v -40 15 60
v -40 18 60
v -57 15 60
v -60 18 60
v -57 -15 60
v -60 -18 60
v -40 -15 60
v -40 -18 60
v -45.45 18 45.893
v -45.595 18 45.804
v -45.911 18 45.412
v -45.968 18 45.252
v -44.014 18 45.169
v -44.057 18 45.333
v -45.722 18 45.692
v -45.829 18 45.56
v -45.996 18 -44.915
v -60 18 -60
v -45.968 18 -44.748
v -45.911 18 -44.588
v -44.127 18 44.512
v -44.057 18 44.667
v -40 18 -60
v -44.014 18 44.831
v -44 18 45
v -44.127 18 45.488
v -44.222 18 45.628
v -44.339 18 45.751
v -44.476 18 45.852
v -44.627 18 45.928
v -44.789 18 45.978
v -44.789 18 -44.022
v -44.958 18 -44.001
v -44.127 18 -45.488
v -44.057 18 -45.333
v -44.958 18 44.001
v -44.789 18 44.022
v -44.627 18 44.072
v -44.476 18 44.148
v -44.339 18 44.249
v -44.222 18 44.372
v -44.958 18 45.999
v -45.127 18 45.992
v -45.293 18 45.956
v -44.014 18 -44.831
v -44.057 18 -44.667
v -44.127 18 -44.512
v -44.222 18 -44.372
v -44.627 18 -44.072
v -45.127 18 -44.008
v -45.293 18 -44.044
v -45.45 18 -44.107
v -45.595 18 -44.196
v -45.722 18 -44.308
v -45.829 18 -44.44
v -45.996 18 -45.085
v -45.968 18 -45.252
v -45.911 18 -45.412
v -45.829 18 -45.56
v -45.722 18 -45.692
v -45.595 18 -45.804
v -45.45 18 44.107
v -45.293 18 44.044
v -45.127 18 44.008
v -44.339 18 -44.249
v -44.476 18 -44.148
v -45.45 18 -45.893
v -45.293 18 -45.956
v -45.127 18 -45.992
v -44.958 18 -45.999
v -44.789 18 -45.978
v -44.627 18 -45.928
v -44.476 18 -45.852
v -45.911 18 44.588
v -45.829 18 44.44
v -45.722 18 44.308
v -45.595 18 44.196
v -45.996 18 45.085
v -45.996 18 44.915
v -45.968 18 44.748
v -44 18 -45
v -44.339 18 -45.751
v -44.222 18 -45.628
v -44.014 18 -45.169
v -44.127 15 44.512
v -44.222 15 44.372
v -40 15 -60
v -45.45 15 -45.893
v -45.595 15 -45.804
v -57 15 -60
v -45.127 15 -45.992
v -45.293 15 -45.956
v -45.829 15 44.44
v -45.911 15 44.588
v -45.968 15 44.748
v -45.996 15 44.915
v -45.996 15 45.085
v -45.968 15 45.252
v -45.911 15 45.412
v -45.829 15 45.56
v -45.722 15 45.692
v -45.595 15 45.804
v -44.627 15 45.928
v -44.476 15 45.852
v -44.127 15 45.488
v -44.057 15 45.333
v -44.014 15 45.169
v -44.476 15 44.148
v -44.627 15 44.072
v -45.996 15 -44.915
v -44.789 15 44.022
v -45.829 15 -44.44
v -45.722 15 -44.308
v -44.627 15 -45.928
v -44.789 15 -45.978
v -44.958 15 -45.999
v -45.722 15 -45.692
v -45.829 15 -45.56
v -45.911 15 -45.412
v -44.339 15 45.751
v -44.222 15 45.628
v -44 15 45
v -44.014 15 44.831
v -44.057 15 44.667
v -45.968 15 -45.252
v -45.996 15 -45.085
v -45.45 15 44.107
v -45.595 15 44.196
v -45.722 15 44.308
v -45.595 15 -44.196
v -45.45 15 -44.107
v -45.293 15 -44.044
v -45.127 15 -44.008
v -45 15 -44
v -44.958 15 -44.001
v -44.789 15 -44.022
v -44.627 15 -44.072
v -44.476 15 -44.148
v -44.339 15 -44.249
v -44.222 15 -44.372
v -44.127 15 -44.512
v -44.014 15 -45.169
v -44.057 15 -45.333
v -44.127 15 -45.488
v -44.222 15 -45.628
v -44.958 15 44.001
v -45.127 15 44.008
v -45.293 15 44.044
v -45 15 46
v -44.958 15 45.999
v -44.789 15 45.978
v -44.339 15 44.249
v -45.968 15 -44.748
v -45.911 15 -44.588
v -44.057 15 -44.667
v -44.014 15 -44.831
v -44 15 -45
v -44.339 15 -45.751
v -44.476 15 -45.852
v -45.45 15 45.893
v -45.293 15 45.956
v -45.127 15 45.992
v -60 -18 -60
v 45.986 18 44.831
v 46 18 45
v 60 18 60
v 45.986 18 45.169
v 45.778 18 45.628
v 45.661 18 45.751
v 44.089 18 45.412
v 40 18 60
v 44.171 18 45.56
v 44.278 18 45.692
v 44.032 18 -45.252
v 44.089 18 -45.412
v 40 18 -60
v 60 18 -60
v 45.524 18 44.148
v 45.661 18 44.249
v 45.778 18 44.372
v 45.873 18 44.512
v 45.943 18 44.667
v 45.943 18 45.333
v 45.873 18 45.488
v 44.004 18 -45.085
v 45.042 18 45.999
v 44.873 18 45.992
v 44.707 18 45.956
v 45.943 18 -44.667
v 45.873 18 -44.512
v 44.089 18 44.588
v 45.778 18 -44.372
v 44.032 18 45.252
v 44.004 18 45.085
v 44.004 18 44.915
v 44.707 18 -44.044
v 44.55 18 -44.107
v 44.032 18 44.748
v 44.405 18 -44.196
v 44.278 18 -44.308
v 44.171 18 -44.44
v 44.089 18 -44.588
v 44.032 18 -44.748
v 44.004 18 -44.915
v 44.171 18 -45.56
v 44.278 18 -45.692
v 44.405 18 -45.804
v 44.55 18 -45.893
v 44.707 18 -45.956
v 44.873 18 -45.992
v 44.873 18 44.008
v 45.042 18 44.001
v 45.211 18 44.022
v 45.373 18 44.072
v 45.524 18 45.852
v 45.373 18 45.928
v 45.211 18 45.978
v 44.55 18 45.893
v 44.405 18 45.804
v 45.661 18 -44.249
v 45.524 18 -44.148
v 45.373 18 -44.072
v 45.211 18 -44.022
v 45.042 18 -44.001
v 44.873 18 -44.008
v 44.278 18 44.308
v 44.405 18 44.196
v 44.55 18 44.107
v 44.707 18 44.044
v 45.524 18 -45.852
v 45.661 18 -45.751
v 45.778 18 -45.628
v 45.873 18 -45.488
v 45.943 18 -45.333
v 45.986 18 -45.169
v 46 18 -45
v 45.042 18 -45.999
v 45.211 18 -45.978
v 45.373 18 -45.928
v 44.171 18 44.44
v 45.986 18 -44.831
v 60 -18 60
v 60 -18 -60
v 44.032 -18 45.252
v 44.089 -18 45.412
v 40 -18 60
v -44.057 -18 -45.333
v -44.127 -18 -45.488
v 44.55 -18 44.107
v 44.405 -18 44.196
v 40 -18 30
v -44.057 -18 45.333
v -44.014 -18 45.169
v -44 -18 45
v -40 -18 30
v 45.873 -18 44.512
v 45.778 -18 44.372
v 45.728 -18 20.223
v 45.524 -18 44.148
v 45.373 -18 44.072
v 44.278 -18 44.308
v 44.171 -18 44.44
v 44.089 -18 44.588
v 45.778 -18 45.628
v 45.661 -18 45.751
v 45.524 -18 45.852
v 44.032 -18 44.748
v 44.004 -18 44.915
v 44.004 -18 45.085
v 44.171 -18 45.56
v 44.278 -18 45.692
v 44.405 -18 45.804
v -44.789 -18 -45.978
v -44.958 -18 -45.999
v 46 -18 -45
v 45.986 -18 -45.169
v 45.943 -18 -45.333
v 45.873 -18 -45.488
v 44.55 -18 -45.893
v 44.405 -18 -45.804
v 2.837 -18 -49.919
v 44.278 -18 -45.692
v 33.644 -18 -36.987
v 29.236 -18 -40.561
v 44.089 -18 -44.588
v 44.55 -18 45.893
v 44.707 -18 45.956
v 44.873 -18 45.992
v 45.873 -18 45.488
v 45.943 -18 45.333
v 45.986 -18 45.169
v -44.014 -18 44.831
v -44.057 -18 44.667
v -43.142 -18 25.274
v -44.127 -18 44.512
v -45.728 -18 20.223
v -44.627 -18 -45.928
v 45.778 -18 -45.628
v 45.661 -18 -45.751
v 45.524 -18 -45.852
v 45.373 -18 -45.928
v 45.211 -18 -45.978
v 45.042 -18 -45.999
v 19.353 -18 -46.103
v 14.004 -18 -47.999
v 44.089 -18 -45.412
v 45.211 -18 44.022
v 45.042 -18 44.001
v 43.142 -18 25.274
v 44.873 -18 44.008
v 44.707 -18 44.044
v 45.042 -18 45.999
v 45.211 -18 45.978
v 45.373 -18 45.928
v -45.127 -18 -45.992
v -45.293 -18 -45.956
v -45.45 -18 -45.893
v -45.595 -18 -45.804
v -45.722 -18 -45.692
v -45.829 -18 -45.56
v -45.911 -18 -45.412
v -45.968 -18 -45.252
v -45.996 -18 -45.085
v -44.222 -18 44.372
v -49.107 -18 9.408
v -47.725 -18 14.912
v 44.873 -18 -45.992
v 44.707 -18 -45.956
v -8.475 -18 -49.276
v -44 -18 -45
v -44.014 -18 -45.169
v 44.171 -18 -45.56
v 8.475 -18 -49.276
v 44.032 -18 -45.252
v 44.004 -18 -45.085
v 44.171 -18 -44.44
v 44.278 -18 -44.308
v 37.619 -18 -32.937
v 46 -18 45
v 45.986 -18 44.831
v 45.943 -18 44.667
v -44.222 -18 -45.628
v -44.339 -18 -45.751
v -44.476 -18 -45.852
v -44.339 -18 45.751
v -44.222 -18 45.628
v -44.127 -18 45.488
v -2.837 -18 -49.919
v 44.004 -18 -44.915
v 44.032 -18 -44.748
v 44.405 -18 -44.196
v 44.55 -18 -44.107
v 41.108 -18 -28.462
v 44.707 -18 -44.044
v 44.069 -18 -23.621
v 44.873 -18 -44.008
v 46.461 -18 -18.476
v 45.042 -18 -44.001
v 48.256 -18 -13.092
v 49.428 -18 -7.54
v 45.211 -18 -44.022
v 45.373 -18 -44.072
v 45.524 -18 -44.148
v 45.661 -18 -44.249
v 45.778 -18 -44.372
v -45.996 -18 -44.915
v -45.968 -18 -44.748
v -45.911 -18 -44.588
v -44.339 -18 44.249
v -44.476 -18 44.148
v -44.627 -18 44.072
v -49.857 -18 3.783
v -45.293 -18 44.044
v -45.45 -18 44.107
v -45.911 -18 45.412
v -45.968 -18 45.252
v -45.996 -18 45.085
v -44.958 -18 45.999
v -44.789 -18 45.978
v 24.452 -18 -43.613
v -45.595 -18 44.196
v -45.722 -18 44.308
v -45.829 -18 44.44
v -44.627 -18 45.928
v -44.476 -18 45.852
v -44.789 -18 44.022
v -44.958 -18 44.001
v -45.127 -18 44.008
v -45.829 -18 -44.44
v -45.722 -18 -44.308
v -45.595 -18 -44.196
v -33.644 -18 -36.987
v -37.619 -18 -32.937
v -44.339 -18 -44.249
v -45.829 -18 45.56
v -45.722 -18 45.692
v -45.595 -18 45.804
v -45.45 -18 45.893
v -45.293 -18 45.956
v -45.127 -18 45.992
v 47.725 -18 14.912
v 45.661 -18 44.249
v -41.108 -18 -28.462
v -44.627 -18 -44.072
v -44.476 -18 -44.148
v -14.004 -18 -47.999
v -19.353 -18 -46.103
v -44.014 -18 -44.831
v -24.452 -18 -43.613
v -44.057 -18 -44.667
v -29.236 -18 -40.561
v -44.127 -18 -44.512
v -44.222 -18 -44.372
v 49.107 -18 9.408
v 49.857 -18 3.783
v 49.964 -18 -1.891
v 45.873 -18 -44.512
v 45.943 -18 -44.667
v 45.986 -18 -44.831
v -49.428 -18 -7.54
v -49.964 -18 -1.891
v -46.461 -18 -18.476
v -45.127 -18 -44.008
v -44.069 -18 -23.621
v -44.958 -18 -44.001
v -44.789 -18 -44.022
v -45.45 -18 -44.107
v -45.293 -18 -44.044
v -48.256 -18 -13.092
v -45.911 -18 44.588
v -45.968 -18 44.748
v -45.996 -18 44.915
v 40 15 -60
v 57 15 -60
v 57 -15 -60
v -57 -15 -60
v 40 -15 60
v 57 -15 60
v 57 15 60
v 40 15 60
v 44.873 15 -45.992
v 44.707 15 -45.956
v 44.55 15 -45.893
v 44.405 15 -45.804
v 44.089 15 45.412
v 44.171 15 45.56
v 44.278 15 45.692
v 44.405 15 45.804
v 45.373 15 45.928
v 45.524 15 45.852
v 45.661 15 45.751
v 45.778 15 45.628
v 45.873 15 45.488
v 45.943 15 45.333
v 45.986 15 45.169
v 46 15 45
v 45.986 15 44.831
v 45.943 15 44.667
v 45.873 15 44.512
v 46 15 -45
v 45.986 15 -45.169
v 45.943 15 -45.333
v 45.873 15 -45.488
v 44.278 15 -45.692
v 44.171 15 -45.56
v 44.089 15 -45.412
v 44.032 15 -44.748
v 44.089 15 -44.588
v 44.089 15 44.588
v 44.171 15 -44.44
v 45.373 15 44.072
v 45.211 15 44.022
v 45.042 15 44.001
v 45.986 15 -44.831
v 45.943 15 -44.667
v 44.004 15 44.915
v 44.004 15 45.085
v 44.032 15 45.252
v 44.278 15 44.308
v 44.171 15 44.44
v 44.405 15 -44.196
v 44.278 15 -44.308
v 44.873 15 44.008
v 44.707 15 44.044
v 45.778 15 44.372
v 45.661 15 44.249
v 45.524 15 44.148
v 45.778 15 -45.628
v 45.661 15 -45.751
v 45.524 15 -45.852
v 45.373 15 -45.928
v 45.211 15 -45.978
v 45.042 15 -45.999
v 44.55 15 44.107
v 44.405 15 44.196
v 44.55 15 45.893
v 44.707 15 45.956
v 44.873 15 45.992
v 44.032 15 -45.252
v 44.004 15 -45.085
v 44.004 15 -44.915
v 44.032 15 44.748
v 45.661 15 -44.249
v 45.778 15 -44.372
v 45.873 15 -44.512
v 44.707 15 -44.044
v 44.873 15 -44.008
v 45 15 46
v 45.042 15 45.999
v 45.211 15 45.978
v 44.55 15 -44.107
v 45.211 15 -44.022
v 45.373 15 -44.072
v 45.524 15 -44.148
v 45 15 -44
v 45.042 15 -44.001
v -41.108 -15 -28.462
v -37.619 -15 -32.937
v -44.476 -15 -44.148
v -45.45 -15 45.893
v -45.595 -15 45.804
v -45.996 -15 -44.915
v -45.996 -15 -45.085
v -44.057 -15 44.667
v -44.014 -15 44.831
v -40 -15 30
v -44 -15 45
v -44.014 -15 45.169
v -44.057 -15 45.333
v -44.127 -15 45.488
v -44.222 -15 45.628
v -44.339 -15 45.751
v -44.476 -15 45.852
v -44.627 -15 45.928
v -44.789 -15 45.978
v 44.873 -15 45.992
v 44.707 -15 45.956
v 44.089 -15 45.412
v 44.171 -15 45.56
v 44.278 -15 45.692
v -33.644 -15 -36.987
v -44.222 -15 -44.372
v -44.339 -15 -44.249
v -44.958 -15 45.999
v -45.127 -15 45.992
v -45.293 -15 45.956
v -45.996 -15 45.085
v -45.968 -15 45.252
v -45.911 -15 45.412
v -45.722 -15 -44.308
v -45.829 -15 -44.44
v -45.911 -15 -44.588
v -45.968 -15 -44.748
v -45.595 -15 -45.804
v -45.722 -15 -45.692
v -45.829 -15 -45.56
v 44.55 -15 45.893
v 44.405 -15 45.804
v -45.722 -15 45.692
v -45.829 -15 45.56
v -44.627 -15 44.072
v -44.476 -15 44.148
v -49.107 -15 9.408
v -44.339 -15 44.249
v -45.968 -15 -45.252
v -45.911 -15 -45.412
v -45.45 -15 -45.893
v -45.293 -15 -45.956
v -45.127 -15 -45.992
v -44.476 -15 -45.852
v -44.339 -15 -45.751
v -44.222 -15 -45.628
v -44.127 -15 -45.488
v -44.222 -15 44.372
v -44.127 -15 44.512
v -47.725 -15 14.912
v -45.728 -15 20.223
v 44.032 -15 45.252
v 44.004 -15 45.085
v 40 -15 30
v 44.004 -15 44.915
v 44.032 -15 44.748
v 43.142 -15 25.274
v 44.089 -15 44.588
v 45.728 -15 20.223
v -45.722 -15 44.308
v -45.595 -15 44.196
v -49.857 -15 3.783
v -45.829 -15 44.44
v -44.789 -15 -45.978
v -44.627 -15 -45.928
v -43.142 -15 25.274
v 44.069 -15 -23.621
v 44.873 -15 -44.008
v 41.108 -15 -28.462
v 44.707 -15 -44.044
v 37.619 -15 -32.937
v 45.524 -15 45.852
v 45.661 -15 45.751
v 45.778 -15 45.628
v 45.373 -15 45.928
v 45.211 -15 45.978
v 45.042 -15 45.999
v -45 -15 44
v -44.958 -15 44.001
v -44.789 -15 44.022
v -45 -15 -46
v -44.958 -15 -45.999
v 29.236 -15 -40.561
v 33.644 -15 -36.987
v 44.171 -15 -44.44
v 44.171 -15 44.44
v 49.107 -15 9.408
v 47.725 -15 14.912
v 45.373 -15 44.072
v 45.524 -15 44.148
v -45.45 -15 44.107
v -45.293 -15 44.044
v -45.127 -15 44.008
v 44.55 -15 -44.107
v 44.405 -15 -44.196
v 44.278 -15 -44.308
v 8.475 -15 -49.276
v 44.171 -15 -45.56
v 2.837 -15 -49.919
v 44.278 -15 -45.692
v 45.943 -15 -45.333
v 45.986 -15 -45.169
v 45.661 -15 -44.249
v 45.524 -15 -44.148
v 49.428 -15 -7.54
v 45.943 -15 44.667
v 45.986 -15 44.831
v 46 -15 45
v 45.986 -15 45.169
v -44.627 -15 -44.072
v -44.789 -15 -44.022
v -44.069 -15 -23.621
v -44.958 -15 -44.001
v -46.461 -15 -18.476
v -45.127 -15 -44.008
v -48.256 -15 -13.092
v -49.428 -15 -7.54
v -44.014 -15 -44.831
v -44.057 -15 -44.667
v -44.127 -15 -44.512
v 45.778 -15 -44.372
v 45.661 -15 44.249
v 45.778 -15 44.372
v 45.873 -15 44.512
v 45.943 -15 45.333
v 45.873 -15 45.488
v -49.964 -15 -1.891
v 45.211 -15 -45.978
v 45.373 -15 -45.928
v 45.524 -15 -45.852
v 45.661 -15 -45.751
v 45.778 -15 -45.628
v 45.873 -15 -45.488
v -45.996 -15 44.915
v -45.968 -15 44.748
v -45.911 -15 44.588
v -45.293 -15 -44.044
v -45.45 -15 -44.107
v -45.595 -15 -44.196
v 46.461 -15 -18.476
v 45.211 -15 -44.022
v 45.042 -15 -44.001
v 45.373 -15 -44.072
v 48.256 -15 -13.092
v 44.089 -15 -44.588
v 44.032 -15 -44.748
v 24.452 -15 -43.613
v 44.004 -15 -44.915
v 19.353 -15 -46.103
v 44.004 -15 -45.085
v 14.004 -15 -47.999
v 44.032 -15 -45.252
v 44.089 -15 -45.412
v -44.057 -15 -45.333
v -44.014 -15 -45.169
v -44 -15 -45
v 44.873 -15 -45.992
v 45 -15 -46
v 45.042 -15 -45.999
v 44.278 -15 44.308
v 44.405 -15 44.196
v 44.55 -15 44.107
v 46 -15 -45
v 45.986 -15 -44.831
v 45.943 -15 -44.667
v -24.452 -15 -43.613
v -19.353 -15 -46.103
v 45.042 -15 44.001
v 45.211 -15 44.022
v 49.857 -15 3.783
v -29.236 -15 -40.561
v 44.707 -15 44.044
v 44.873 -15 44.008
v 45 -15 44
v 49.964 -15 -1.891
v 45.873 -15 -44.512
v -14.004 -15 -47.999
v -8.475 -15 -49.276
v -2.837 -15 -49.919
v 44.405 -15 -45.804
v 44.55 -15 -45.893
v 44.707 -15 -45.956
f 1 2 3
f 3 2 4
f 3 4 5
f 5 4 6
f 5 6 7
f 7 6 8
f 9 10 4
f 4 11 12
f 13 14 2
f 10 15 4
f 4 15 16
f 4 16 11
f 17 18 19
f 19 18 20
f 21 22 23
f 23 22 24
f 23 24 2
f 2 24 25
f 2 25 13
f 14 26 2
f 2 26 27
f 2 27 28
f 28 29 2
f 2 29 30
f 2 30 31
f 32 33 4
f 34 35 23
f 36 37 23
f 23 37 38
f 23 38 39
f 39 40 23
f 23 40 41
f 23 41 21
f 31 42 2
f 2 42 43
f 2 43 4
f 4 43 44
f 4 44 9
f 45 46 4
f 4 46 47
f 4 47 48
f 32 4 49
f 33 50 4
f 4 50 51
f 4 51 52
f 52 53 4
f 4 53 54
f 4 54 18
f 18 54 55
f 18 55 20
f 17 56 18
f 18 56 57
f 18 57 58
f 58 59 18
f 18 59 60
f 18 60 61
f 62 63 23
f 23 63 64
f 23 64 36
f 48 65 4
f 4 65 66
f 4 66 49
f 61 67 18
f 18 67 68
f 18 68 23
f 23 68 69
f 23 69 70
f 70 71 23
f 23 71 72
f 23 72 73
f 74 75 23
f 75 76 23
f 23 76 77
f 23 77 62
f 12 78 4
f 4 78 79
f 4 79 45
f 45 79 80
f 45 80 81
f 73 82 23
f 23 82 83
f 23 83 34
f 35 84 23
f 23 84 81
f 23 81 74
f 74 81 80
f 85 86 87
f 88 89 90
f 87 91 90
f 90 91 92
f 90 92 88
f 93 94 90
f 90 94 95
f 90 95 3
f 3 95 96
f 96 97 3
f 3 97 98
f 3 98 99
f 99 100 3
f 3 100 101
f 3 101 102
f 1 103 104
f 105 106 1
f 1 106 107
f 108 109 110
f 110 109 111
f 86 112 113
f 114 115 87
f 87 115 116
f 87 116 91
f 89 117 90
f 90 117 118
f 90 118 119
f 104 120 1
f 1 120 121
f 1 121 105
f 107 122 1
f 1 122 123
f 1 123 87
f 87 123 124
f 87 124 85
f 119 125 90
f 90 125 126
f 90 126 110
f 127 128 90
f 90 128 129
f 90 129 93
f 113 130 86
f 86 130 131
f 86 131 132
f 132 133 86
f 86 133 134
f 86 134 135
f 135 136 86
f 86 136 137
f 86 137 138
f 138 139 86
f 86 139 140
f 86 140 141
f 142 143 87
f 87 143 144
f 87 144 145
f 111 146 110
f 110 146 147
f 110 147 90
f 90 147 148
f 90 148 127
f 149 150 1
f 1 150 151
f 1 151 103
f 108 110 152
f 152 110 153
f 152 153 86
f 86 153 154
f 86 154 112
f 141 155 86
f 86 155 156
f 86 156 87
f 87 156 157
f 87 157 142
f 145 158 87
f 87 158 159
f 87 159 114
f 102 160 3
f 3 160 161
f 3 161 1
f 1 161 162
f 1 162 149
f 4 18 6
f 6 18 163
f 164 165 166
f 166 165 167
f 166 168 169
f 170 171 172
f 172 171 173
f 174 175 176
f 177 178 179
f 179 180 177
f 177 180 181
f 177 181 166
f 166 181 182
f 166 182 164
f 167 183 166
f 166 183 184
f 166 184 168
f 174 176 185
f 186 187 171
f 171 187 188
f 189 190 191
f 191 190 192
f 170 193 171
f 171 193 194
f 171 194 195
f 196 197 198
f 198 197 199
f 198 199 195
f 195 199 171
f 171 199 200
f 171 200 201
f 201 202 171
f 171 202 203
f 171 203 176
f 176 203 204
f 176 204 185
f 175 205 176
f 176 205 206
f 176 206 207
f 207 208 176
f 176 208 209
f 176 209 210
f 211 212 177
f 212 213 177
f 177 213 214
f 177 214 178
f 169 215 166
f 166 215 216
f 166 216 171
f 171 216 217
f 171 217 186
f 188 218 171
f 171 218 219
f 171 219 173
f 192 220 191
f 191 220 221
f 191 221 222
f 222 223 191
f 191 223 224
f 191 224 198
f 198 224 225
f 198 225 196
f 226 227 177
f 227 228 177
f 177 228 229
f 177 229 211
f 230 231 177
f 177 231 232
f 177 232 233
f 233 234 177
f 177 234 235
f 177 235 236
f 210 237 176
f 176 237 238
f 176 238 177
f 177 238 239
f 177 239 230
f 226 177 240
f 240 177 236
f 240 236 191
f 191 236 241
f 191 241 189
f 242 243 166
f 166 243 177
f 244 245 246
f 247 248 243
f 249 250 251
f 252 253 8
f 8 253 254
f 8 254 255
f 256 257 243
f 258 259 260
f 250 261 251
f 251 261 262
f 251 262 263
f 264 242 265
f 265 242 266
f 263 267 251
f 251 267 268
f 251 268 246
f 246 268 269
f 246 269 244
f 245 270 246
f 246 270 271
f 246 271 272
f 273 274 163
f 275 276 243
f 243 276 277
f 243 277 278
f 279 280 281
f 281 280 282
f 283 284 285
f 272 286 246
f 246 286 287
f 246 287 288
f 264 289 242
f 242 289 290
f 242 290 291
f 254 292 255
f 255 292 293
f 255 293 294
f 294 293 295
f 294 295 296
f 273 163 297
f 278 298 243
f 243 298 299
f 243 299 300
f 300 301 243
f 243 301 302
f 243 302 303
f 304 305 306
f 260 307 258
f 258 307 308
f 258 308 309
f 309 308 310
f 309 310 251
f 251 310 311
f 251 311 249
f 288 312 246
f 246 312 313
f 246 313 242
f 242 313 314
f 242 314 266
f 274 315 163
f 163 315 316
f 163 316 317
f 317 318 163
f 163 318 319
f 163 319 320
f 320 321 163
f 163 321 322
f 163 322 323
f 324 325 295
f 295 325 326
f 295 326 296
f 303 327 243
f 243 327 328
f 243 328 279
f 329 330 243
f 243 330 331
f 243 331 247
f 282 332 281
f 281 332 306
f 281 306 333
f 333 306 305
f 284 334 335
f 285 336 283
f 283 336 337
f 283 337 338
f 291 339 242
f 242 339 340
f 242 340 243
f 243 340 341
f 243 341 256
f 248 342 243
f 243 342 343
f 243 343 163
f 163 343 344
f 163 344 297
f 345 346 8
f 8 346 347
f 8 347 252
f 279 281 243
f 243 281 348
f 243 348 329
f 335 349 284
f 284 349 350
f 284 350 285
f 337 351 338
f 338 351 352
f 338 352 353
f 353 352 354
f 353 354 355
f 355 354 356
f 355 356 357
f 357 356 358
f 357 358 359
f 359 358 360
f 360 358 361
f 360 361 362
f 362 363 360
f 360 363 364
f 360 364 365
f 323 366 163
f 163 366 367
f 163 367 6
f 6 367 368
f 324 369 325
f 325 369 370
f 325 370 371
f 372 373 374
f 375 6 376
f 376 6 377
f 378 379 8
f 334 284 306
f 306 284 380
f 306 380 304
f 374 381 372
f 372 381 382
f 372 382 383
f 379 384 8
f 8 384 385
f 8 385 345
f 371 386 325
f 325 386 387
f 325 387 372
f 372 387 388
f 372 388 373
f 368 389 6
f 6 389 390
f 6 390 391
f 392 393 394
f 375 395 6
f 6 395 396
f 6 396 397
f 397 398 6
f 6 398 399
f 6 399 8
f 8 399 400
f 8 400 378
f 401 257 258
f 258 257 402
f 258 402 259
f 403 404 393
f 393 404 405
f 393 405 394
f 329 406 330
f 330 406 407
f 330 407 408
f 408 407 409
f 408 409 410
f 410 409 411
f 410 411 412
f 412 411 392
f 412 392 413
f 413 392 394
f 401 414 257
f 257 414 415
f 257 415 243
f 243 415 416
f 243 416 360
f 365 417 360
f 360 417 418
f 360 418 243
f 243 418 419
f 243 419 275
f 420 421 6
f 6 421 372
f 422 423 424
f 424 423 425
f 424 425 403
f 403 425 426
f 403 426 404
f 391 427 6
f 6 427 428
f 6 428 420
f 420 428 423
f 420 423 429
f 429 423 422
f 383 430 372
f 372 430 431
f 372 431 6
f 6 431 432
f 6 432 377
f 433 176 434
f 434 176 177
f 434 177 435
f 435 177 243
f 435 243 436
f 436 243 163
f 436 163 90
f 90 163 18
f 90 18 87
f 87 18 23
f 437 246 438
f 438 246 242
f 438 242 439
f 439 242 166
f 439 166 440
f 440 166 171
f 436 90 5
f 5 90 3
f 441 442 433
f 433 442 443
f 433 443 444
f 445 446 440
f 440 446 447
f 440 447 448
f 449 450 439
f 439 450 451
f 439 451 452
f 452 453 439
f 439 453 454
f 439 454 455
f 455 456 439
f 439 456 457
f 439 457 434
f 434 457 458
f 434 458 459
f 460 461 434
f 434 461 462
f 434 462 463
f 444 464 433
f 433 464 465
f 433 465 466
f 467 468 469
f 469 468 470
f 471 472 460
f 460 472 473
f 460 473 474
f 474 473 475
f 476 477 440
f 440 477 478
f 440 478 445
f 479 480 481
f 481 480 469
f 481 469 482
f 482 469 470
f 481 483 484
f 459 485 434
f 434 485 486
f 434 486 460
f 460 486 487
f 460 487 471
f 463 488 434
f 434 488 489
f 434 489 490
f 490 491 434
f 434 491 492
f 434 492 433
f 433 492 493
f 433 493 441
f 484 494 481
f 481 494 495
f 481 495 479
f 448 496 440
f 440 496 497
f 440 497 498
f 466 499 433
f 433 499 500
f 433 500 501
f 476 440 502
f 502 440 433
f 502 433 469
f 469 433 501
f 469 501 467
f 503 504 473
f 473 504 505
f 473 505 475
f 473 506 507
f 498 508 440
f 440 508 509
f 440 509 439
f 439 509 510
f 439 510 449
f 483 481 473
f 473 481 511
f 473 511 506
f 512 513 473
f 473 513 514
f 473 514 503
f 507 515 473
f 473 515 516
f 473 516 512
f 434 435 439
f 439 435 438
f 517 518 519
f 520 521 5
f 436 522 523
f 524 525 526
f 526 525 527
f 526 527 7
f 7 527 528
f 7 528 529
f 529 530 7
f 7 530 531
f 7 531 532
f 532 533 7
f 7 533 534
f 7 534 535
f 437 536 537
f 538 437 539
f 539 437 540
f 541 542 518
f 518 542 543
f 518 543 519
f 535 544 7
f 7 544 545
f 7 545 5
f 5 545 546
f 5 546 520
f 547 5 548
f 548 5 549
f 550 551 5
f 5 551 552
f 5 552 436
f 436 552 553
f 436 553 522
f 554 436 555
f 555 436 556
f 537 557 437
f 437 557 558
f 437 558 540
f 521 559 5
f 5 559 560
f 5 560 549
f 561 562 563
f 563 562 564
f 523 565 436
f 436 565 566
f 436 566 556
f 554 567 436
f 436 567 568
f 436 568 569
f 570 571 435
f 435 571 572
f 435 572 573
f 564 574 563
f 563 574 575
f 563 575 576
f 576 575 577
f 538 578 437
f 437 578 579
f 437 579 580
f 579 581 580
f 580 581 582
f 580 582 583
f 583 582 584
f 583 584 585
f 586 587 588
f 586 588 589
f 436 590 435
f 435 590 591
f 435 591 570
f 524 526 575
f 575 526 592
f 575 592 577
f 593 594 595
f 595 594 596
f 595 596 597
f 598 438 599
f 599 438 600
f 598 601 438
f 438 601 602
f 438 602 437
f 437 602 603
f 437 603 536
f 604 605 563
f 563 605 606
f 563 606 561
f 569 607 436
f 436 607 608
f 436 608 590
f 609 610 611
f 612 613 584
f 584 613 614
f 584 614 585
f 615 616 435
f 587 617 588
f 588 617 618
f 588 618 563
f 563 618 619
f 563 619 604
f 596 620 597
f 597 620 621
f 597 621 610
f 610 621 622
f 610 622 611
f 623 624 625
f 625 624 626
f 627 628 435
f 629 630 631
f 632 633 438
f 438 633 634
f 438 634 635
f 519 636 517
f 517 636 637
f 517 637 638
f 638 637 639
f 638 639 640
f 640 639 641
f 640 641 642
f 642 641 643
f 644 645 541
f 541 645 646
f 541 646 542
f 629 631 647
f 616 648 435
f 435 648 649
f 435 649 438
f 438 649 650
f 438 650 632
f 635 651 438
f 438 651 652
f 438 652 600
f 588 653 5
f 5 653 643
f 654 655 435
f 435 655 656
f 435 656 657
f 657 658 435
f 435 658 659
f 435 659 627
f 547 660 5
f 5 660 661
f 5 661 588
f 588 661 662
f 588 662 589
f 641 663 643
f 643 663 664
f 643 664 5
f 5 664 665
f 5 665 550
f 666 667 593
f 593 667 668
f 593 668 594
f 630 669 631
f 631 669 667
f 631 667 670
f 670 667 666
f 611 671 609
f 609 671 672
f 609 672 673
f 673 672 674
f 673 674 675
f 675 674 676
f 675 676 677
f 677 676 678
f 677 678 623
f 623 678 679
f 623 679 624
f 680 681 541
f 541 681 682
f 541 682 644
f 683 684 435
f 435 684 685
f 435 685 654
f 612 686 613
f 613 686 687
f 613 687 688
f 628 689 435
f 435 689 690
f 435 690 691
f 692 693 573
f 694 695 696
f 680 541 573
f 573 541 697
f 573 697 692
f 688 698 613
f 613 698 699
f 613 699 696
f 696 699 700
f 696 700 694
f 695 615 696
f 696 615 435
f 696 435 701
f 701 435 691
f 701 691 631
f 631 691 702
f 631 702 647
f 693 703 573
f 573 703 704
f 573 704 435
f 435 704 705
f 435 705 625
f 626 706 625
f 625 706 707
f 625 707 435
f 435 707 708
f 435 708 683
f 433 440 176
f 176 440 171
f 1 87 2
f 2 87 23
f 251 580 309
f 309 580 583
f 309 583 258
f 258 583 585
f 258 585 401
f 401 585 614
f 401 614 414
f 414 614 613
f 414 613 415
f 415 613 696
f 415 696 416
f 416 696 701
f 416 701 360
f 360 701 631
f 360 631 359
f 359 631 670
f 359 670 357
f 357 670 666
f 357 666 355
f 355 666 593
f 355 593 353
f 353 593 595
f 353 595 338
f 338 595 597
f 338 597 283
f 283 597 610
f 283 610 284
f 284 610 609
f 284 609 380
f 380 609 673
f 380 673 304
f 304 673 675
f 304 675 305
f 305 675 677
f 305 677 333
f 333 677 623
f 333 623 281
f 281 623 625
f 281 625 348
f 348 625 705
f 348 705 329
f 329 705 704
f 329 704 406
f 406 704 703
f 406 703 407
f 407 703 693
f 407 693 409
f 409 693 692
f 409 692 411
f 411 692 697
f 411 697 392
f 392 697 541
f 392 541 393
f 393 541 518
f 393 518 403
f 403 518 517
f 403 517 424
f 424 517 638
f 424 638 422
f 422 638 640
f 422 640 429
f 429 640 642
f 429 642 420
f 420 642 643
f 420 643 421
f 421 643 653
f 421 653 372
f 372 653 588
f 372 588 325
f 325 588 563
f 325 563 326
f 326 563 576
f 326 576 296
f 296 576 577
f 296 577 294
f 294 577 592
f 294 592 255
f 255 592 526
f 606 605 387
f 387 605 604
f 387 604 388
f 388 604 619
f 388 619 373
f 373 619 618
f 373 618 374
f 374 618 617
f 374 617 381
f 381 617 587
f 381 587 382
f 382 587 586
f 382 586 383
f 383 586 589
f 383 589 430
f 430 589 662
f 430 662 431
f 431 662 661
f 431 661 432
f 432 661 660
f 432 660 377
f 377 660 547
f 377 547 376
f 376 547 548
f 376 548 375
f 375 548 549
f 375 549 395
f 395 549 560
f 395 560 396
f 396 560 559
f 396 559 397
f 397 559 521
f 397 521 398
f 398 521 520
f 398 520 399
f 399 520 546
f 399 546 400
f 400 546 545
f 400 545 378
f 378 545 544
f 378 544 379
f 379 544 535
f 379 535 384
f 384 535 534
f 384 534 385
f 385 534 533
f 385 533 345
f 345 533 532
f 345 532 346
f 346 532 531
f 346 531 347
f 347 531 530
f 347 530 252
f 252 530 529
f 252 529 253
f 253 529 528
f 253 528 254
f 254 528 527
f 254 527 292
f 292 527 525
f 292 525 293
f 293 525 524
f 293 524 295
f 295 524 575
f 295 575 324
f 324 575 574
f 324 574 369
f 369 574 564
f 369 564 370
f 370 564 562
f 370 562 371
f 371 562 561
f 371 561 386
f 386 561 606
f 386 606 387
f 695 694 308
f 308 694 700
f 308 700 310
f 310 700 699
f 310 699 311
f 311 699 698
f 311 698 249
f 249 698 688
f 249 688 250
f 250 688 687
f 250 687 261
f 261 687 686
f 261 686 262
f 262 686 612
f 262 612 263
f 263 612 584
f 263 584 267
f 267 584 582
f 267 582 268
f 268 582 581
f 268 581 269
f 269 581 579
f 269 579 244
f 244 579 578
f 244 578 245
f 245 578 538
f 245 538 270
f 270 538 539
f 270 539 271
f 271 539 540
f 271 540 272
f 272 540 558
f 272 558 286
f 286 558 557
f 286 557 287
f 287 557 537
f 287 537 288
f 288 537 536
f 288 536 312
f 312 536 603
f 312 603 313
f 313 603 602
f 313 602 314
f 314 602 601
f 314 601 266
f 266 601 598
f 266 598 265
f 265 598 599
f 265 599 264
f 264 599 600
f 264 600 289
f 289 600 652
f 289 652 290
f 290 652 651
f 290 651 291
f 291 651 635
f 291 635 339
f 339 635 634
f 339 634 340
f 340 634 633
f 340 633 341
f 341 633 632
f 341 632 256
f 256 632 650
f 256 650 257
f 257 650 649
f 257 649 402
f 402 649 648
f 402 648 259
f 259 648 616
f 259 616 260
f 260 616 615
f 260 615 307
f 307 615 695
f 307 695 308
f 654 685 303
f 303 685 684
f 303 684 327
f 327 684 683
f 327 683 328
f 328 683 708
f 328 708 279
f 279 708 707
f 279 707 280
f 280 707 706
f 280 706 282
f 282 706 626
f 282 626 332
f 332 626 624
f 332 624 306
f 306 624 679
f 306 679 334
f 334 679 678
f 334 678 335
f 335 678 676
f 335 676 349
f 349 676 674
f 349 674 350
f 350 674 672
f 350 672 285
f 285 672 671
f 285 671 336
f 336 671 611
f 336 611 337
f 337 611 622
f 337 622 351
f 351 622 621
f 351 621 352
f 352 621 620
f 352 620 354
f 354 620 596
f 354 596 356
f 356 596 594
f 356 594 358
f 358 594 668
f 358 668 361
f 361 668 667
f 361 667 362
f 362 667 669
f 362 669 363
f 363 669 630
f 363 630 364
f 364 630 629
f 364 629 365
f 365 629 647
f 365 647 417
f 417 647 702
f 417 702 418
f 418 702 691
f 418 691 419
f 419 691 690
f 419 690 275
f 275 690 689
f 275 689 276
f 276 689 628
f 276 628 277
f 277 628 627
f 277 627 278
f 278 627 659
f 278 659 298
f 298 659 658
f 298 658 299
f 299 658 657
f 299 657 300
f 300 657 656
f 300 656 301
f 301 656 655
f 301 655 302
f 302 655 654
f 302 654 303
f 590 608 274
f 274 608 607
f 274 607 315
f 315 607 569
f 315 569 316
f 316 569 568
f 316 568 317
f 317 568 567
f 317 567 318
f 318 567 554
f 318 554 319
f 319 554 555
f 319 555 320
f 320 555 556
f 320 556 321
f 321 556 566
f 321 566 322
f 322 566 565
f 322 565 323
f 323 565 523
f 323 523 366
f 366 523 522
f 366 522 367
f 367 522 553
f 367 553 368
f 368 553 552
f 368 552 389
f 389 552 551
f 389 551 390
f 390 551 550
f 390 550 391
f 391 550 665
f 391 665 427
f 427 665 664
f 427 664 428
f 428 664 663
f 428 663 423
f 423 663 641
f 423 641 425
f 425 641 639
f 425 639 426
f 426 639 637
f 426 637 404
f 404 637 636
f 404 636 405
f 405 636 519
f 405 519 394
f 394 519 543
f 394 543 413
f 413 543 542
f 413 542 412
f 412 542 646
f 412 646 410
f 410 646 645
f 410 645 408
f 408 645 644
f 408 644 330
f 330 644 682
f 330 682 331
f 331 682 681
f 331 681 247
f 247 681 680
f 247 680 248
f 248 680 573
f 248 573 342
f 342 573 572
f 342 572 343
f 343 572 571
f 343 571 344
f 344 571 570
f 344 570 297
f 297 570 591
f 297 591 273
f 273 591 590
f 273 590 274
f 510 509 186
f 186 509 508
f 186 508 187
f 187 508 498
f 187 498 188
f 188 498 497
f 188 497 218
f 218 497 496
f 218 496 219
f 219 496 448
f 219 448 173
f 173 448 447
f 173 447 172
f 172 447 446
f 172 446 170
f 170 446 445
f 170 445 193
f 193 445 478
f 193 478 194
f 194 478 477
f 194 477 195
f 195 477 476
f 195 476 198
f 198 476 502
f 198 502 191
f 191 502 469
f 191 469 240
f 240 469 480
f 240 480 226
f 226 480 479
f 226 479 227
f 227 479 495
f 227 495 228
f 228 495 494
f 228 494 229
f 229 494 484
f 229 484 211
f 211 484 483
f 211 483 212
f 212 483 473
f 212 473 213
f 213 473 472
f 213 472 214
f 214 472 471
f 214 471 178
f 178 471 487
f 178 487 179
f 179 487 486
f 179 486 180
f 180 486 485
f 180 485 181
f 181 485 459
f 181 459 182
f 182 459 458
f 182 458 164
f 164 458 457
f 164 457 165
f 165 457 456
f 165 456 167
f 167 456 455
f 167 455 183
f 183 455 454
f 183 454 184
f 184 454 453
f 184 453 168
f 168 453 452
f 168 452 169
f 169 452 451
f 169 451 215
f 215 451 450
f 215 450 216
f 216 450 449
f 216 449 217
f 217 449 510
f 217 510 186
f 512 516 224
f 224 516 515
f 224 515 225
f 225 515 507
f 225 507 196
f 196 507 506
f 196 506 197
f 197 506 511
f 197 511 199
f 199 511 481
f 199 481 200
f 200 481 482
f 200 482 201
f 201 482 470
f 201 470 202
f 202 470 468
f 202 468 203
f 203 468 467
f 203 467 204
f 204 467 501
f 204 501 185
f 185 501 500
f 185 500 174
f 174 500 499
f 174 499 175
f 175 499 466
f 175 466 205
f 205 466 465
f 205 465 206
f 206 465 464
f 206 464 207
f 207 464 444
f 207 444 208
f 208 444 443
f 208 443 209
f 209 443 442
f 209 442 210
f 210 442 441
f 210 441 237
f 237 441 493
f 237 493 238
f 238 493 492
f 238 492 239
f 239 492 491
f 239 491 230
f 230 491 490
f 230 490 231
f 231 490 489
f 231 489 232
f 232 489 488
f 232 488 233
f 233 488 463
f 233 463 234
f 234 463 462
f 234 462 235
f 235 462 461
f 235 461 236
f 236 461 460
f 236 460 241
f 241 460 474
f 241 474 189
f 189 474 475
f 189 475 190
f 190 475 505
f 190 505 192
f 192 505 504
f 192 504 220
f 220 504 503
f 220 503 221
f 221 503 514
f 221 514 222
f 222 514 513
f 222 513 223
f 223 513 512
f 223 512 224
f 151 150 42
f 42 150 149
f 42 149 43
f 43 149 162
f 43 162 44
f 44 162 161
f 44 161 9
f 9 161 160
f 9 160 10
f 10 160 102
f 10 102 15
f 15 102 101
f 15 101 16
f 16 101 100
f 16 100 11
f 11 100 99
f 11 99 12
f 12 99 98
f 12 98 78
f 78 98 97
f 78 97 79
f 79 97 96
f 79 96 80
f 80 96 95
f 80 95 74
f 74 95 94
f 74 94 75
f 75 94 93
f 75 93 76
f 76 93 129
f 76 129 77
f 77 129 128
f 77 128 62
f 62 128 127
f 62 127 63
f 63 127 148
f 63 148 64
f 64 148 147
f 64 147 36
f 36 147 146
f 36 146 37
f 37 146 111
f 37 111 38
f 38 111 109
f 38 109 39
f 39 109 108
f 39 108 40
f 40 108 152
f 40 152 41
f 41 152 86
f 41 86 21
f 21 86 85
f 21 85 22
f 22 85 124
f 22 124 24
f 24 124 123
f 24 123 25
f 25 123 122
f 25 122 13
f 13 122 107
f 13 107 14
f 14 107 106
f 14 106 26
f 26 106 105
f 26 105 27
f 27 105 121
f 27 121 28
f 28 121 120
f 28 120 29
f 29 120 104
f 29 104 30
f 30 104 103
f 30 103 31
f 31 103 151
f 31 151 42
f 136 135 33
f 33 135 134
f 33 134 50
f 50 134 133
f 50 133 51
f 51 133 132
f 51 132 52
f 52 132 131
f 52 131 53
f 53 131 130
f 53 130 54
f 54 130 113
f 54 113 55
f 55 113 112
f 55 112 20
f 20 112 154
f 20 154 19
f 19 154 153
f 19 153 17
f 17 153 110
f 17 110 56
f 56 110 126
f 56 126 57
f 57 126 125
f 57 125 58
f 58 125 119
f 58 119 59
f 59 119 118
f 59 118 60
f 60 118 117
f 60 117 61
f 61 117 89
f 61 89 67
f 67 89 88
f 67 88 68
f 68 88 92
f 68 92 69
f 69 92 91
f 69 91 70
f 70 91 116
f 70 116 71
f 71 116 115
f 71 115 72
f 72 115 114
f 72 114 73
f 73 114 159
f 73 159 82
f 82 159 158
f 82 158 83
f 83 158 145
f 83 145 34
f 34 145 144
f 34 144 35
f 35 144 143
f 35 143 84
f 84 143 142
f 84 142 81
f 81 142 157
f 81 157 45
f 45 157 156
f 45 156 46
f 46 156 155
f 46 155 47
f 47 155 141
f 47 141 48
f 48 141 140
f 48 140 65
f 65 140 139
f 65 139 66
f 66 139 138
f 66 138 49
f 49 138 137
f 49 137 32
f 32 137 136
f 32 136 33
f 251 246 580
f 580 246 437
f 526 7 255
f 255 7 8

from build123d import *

# Parameters (mm, degrees)
BOSS_EXTRUDE1_DEPTH      = 60
BOSS_EXTRUDE1_DEPTH_BACK = 60
SKETCH1_W                = 120
SKETCH1_H                = 36
SKETCH2_W                = 114
SKETCH2_H                = 30
CUT_EXTRUDE1_DEPTH       = 136.366170072
SKETCH3_W                = 80
SKETCH3_H                = 22.357813814
CUT_EXTRUDE2_DEPTH       = 136.366170072
SKETCH4_R                = 50
CUT_EXTRUDE3_DEPTH       = 92.043945433
SKETCH7_R                = 1
CUT_EXTRUDE4_DEPTH       = 93.173748974
CUT_EXTRUDE6_REACH       = 94.174
SKETCH9_W                = 80
SKETCH9_H                = 60


with BuildPart() as part:
    # Sketch1 → Boss-Extrude1 (new, two sides: drawn at the far end of the back side and taken through both)
    with BuildSketch(Plane.XY.offset(-BOSS_EXTRUDE1_DEPTH_BACK)):
        Rectangle(SKETCH1_W, SKETCH1_H)
    extrude(amount=BOSS_EXTRUDE1_DEPTH + BOSS_EXTRUDE1_DEPTH_BACK)

    # Sketch2 → Cut-Extrude1 (cut, through all)
    with BuildSketch(Plane.XY.offset(60)):
        Rectangle(SKETCH2_W, SKETCH2_H)
    extrude(amount=-CUT_EXTRUDE1_DEPTH, mode=Mode.SUBTRACT)

    # Sketch3 → Cut-Extrude2 (cut, through all)
    with BuildSketch(Plane.XY.offset(60)):
        with Locations((0, 15)):
            Rectangle(SKETCH3_W, SKETCH3_H)
    extrude(amount=-CUT_EXTRUDE2_DEPTH, mode=Mode.SUBTRACT)

    # Sketch4 → Cut-Extrude3 (cut, through all)
    with BuildSketch(Plane(origin=(0, -15, 0), x_dir=(1, 0, 0), z_dir=(0, 1, 0))):
        Circle(SKETCH4_R)
    extrude(amount=-CUT_EXTRUDE3_DEPTH, mode=Mode.SUBTRACT)

    # Sketch7 → Cut-Extrude4 (cut, through all)
    with BuildSketch(Plane(origin=(0, -18, 0), x_dir=(-1, 0, 0), z_dir=(0, -1, 0))):
        with Locations((45, -45)):
            Circle(SKETCH7_R)
        with Locations((-45, -45)):
            Circle(SKETCH7_R)
        with Locations((-45, 45)):
            Circle(SKETCH7_R)
        with Locations((45, 45)):
            Circle(SKETCH7_R)
    extrude(amount=-CUT_EXTRUDE4_DEPTH, mode=Mode.SUBTRACT)

    # Sketch9 → Cut-Extrude6 (cut, up to next)
    with BuildSketch(Plane.XZ.offset(18), mode=Mode.PRIVATE) as cut_extrude6_sk1:
        with Locations((0, 60)):
            Rectangle(SKETCH9_W, SKETCH9_H)
    cut_extrude6_tool1 = extrude(cut_extrude6_sk1.sketch, amount=-CUT_EXTRUDE6_REACH, mode=Mode.PRIVATE) & part.part
    add(cut_extrude6_tool1.solids().sort_by_distance((0, -18, 60))[0], mode=Mode.SUBTRACT)


solid = part.part
